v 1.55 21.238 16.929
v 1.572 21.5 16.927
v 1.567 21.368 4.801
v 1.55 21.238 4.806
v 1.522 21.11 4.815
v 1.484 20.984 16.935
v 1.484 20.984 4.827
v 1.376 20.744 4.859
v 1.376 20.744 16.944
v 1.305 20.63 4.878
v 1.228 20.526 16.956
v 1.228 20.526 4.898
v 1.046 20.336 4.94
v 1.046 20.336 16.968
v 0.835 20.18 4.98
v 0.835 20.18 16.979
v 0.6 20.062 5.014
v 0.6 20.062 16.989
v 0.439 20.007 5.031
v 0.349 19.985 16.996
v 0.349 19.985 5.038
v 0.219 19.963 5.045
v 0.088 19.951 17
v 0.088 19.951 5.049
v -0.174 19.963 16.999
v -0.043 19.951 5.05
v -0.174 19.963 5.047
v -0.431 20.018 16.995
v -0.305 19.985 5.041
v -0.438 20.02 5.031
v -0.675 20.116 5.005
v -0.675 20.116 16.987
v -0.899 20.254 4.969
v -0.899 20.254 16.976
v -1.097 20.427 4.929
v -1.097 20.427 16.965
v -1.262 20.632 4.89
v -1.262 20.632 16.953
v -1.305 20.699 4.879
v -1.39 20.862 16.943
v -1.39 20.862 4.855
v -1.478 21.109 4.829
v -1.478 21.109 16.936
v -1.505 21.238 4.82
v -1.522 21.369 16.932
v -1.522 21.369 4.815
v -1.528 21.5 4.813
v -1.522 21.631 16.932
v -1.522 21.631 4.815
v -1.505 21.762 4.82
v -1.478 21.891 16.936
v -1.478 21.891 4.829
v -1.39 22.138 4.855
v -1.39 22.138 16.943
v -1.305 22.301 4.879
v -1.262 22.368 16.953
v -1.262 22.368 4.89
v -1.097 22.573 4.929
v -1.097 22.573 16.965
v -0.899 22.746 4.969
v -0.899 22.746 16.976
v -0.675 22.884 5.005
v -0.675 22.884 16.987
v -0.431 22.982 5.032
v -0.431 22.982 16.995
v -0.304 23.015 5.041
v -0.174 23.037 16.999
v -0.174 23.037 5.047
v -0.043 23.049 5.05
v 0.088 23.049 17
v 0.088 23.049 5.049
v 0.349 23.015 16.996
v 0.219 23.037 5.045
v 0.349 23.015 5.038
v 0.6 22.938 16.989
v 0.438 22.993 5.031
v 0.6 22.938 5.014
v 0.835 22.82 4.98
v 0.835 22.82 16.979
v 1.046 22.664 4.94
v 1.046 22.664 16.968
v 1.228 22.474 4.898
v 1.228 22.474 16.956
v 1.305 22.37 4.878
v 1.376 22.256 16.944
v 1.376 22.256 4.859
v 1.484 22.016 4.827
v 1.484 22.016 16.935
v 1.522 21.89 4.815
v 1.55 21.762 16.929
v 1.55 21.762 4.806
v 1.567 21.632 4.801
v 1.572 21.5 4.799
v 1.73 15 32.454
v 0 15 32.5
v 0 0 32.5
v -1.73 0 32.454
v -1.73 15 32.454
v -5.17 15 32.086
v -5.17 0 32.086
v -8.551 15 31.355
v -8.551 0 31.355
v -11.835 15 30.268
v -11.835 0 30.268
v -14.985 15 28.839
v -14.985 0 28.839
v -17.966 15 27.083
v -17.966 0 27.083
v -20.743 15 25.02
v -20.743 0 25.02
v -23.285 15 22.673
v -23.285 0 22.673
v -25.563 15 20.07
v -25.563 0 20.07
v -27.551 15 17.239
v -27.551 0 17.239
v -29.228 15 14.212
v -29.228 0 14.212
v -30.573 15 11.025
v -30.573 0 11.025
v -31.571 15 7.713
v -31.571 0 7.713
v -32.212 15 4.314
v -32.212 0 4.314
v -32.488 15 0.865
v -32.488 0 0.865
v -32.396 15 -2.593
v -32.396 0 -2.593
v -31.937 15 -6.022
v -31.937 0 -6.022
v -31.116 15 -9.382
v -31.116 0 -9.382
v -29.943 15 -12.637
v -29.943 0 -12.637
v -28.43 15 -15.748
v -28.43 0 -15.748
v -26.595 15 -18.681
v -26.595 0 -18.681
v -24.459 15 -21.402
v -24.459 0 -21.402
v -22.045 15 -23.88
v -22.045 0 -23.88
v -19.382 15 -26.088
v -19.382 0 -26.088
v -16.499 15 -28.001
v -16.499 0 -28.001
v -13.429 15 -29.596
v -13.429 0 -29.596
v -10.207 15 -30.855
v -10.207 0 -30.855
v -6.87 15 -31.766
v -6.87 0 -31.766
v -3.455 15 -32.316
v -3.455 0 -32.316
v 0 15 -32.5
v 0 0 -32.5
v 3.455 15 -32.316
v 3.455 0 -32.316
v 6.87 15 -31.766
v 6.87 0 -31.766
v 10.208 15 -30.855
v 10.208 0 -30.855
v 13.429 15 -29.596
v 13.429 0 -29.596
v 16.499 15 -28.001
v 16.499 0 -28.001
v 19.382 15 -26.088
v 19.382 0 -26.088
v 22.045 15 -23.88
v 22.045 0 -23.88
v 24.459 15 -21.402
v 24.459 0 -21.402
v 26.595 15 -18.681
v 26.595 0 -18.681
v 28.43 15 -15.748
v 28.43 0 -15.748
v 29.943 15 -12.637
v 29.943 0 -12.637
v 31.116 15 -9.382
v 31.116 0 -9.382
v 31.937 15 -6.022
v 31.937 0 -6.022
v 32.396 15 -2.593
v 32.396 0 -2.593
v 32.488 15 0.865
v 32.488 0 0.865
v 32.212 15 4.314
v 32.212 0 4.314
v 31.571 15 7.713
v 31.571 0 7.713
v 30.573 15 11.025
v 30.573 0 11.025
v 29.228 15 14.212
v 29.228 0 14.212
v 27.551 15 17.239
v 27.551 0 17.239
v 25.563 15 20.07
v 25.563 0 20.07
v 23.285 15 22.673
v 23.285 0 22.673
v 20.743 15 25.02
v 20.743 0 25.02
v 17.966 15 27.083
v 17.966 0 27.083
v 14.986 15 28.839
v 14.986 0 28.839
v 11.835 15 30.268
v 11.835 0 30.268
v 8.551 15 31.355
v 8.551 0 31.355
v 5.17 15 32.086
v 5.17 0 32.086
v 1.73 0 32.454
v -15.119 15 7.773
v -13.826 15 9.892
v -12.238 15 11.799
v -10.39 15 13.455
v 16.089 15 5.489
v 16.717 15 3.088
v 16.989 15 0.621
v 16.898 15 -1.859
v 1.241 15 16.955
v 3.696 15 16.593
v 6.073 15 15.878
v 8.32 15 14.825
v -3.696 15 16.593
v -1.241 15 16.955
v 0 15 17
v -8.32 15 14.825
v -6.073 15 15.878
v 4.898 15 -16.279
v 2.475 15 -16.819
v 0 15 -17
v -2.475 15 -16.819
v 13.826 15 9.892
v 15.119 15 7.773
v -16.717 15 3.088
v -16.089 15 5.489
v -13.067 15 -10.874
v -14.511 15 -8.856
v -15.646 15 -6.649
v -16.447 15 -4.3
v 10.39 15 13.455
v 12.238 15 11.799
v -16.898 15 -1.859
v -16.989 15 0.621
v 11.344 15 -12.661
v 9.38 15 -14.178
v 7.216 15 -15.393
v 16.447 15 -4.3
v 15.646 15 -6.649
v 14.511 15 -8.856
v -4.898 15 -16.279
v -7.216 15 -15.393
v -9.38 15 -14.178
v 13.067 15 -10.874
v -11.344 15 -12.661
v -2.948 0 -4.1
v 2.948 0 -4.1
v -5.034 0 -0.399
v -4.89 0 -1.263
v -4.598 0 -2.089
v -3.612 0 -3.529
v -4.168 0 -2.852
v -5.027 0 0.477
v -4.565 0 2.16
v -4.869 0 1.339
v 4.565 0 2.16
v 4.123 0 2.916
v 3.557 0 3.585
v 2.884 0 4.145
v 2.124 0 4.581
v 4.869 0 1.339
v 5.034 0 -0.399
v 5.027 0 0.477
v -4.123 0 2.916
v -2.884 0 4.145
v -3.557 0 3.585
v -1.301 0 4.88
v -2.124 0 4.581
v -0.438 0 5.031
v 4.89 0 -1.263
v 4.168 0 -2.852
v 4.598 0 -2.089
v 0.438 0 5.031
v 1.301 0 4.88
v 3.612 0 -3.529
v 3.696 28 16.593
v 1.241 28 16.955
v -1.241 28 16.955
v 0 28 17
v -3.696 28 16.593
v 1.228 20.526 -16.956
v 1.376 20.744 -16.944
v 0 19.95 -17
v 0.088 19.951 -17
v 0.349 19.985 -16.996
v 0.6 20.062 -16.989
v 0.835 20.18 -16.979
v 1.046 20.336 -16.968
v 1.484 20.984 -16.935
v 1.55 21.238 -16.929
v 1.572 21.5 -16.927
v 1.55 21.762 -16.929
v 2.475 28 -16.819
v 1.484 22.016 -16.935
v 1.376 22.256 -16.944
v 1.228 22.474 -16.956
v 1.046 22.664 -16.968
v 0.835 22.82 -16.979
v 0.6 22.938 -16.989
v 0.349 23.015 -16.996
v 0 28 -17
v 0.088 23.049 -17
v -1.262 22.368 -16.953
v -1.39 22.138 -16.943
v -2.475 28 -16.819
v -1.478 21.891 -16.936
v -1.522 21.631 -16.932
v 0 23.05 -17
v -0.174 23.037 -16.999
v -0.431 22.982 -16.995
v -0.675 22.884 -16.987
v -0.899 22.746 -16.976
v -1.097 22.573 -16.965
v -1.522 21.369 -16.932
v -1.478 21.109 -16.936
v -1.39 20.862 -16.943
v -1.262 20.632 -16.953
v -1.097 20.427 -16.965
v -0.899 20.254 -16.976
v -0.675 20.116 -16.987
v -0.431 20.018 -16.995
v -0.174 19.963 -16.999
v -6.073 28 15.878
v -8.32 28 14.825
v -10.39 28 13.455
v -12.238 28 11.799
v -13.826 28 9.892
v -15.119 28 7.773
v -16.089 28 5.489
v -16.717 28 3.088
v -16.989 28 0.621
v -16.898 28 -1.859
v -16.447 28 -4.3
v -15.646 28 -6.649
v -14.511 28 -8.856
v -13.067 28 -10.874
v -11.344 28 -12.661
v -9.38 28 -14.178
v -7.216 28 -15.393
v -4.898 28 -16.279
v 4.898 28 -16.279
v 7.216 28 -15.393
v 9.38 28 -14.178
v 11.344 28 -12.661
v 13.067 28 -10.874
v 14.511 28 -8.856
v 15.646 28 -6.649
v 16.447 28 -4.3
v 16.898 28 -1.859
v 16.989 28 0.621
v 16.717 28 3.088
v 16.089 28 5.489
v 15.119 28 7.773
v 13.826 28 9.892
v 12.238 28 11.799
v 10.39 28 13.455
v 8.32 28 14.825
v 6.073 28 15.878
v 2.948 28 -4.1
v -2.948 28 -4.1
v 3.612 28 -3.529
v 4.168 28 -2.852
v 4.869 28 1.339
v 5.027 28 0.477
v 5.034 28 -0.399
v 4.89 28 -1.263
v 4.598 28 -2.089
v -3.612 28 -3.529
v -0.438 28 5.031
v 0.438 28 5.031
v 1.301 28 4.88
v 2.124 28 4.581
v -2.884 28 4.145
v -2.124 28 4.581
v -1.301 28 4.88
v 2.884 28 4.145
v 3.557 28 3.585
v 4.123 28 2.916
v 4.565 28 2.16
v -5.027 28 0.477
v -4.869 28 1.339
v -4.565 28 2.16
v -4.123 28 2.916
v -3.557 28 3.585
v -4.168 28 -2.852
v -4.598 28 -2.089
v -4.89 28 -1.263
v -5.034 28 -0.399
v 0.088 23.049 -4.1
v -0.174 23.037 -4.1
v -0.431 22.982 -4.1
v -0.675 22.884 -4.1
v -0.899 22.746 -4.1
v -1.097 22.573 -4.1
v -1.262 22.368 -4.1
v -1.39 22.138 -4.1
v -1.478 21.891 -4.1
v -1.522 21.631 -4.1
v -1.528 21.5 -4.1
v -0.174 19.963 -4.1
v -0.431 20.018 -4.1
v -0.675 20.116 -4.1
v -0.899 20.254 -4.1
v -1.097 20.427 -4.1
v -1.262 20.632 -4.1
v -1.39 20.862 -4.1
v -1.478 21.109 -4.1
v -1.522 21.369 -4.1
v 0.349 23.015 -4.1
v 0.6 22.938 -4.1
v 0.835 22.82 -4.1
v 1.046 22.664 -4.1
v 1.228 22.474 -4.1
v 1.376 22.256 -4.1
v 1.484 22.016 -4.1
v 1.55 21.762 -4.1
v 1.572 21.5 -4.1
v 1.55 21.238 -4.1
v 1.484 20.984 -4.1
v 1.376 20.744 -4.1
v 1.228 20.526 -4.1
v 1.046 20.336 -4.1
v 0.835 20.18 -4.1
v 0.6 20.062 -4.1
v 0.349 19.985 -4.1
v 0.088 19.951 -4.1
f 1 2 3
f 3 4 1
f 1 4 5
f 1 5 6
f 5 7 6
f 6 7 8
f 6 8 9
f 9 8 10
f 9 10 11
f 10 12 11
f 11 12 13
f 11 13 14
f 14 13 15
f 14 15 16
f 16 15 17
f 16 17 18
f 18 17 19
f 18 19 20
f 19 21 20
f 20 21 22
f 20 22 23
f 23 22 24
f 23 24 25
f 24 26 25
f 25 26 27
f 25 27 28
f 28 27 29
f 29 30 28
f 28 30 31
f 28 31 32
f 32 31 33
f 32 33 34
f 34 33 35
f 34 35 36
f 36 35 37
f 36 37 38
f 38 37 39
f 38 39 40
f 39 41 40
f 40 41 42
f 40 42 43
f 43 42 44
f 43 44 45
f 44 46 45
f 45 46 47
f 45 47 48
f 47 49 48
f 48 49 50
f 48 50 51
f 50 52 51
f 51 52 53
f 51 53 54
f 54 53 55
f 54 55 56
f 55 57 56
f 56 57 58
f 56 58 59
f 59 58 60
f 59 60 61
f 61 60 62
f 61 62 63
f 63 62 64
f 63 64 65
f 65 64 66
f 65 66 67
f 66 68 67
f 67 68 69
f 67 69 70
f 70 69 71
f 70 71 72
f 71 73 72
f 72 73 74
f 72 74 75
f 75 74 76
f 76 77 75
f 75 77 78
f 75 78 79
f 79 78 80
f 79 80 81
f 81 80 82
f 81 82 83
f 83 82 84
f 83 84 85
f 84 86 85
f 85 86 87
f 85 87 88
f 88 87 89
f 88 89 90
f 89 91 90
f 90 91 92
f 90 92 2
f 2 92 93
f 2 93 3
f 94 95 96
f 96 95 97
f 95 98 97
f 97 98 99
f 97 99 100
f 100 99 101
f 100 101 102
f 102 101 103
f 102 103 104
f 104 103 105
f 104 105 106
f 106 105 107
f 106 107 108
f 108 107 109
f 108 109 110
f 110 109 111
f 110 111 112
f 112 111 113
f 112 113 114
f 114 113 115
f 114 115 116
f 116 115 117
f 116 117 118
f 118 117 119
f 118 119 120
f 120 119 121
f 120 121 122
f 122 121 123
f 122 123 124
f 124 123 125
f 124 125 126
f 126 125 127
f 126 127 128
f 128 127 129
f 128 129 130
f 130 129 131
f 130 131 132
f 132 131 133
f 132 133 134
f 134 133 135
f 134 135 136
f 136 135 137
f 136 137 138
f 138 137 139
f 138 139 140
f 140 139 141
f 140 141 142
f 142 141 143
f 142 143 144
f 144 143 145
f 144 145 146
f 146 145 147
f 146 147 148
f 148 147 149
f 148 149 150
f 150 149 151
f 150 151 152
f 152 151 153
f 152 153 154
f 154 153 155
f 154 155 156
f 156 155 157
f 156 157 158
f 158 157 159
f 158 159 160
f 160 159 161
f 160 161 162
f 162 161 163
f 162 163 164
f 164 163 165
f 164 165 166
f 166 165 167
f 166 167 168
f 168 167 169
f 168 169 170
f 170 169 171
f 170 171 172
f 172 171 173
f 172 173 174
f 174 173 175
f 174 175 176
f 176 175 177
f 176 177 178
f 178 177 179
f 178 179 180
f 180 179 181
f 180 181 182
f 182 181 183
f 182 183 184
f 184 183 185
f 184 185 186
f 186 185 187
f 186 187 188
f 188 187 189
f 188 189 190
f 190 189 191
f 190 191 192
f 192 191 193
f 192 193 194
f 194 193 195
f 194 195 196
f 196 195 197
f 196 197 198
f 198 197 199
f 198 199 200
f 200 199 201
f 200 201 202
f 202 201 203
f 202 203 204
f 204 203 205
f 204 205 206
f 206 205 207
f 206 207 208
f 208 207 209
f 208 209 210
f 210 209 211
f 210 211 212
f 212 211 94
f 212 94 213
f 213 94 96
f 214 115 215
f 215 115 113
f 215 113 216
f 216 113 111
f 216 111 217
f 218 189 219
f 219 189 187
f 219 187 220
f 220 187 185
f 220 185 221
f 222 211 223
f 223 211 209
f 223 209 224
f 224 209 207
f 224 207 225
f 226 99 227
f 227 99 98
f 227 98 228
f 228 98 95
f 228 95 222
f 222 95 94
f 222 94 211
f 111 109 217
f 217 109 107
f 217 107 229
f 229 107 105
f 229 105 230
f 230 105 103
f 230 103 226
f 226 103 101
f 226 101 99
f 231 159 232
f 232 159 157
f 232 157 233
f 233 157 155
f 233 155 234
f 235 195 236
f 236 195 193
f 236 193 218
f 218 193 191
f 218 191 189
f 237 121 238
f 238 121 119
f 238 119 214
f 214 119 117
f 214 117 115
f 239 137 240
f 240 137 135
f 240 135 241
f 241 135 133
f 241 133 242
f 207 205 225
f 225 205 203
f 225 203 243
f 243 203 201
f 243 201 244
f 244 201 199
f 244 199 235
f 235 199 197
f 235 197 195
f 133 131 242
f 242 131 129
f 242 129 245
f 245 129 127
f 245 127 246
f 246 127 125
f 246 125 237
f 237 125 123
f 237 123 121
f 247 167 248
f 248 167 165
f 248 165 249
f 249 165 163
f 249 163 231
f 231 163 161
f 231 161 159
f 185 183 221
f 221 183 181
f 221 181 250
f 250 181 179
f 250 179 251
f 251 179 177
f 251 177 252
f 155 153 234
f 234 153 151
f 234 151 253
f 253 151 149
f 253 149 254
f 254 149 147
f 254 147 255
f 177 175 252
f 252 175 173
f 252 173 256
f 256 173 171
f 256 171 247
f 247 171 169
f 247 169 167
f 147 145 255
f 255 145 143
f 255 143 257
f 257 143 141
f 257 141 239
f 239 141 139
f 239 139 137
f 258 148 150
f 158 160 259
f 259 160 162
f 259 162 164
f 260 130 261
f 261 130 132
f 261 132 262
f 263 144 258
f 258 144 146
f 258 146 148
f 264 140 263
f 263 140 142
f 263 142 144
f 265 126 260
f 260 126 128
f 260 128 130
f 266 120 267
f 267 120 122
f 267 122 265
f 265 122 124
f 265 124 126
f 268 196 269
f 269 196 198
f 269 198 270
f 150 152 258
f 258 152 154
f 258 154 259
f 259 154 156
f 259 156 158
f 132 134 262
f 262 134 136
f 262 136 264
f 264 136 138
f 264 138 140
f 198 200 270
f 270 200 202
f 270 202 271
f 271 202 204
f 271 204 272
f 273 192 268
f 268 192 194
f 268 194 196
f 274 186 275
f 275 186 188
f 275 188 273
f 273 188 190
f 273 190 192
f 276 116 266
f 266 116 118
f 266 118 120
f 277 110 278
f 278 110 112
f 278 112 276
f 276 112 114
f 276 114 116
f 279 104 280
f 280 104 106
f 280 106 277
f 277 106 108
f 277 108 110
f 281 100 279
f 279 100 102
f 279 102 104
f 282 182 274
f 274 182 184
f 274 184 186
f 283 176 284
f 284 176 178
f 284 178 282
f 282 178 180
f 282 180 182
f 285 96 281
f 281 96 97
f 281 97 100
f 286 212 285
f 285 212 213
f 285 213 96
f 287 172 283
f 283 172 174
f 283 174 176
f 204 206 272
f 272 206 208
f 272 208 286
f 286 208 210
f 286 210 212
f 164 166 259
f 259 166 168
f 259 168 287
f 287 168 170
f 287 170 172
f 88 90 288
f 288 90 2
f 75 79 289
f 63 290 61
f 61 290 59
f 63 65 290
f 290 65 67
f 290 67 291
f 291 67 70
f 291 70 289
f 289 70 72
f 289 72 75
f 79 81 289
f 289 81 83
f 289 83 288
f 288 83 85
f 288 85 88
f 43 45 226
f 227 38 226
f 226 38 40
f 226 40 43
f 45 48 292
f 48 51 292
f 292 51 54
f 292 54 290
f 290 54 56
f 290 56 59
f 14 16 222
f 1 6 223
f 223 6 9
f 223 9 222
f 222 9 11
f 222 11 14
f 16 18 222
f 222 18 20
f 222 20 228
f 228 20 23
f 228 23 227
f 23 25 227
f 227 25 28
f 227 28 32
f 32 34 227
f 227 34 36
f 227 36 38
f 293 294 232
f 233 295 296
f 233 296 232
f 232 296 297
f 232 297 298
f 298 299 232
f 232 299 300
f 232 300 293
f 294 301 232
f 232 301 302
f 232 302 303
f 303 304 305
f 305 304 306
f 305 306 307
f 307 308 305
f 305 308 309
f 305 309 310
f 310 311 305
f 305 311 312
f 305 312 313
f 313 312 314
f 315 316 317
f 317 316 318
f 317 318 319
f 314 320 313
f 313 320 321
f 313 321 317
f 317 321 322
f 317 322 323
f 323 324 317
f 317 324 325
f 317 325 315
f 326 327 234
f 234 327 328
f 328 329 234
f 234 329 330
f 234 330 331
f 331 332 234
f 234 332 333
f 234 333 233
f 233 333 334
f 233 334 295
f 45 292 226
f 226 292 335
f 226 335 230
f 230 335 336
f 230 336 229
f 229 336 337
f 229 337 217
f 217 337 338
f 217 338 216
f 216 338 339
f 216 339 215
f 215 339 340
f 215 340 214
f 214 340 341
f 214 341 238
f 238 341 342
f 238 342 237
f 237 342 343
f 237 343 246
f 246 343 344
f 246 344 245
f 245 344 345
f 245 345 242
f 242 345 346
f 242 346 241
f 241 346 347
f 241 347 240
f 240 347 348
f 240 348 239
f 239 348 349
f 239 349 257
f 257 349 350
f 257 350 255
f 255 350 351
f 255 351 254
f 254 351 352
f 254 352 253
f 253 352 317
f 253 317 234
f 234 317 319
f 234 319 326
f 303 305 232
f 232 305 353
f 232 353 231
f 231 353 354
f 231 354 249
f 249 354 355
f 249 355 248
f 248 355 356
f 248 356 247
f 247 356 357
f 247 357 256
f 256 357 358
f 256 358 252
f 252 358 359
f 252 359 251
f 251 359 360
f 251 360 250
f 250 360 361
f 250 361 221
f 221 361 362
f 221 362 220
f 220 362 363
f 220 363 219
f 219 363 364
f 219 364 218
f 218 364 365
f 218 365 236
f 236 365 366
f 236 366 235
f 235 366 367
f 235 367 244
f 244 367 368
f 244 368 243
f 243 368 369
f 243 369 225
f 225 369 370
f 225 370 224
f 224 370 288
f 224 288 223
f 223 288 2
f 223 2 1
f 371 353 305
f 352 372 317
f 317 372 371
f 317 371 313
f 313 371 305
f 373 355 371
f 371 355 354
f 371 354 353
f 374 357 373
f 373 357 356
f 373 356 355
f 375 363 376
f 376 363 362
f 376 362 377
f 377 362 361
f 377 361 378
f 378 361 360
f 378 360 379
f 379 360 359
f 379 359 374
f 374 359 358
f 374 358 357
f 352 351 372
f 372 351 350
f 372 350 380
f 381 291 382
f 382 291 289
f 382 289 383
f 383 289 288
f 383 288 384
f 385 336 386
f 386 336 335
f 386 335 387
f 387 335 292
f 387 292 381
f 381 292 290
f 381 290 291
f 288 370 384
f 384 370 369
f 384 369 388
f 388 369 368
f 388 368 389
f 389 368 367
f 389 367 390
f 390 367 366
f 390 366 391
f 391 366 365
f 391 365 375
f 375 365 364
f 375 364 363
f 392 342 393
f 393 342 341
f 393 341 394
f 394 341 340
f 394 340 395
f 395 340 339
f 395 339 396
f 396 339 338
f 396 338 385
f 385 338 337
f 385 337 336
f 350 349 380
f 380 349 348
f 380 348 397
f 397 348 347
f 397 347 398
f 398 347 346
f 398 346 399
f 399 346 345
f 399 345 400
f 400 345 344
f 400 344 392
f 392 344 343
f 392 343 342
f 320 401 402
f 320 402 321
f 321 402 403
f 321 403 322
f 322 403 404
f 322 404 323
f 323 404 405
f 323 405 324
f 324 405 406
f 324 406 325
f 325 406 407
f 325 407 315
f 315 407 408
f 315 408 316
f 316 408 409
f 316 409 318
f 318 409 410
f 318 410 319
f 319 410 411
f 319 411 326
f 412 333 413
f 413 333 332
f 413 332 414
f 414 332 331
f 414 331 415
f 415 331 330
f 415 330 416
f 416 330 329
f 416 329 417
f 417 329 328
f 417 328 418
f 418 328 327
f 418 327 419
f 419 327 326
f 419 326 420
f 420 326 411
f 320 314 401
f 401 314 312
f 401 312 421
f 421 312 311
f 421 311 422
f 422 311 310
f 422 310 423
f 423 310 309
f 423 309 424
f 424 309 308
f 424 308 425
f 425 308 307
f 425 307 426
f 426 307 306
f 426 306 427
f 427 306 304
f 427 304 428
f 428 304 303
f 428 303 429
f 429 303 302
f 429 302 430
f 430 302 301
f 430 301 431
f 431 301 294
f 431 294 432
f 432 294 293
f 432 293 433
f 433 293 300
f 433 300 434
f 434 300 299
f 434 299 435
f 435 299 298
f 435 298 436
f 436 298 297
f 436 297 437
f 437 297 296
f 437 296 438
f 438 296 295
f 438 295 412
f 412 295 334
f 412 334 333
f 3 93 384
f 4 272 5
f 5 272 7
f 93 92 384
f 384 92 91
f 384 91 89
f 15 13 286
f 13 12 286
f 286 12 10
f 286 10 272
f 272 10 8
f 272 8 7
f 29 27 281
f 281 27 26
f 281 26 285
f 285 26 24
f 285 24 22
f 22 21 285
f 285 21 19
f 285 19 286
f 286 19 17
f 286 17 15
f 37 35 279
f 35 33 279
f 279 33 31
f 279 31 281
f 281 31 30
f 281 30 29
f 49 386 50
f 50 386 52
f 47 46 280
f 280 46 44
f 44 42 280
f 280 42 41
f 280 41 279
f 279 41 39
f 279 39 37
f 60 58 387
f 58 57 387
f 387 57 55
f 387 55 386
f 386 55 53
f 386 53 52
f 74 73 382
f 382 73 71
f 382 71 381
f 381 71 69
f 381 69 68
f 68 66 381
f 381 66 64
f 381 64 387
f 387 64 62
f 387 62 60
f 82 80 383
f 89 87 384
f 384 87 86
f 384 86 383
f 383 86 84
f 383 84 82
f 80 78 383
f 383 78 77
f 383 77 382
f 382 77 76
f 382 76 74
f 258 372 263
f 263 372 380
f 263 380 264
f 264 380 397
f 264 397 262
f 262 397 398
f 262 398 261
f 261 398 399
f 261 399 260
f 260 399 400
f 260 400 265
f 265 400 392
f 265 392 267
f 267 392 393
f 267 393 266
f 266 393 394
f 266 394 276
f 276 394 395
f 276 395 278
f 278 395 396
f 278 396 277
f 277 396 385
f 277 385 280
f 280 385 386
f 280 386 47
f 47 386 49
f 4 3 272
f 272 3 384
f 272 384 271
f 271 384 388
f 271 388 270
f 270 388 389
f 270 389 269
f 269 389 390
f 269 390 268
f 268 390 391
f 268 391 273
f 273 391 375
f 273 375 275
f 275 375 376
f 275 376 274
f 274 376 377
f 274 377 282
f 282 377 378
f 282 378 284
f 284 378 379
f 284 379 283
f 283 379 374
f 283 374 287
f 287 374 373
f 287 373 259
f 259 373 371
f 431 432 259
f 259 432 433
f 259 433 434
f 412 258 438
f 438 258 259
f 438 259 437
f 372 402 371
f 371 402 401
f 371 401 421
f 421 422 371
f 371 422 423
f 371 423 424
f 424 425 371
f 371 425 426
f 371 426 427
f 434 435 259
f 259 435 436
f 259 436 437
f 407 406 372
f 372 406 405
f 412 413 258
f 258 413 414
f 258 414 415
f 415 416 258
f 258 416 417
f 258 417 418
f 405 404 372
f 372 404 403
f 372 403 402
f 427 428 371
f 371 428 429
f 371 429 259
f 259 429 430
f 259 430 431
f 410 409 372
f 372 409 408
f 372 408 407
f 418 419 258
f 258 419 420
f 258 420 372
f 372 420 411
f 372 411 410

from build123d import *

# Parameters (mm, degrees)
SKETCH1_R               = 32.5
BOSS_EXTRUDE1_DEPTH     = 15
SKETCH2_R               = 17
BOSS_EXTRUDE2_DEPTH     = 13
CUT_EXTRUDE2_DEPTH      = 54.819141576
CUT_EXTRUDE2_DEPTH_BACK = 54.819141576
SKETCH3_R               = 1.55
CUT_EXTRUDE3_DEPTH      = 54.819141576


with BuildPart() as part:
    # Sketch1 → Boss-Extrude1 (new body)
    with BuildSketch(Plane(origin=(0, 0, 0), x_dir=(1, 0, 0), z_dir=(0, 1, 0))):
        with Locations(Location((0, 0, 0), (0, 0, 270))):
            Circle(SKETCH1_R)
    extrude(amount=BOSS_EXTRUDE1_DEPTH)

    # Sketch2 → Boss-Extrude2 (add)
    with BuildSketch(Plane(origin=(0, 15, 0), x_dir=(1, 0, 0), z_dir=(0, 1, 0))):
        with Locations(Location((0, 0, 0), (0, 0, 90))):
            Circle(SKETCH2_R)
    extrude(amount=BOSS_EXTRUDE2_DEPTH)

    # Sketch3 → Cut-Extrude2 (cut, two sides: drawn at the far end of the back side and taken through both)
    with BuildSketch(Plane.XY.offset(-CUT_EXTRUDE2_DEPTH_BACK)):
        with Locations((0.022370376, 21.5)):
            Circle(SKETCH3_R)
    extrude(amount=CUT_EXTRUDE2_DEPTH + CUT_EXTRUDE2_DEPTH_BACK, mode=Mode.SUBTRACT)

    # Sketch4 → Cut-Extrude3 (cut, through all)
    with BuildSketch(Plane(origin=(0, 28, 0), x_dir=(1, 0, 0), z_dir=(0, 1, 0))):
        with BuildLine():
            Line((-2.948304598, 4.1), (2.948304598, 4.1))
            ThreePointArc((2.948304598, 4.1), (0, -5.05), (-2.948304598, 4.1))
        make_face()
    extrude(amount=-CUT_EXTRUDE3_DEPTH, mode=Mode.SUBTRACT)


solid = part.part
